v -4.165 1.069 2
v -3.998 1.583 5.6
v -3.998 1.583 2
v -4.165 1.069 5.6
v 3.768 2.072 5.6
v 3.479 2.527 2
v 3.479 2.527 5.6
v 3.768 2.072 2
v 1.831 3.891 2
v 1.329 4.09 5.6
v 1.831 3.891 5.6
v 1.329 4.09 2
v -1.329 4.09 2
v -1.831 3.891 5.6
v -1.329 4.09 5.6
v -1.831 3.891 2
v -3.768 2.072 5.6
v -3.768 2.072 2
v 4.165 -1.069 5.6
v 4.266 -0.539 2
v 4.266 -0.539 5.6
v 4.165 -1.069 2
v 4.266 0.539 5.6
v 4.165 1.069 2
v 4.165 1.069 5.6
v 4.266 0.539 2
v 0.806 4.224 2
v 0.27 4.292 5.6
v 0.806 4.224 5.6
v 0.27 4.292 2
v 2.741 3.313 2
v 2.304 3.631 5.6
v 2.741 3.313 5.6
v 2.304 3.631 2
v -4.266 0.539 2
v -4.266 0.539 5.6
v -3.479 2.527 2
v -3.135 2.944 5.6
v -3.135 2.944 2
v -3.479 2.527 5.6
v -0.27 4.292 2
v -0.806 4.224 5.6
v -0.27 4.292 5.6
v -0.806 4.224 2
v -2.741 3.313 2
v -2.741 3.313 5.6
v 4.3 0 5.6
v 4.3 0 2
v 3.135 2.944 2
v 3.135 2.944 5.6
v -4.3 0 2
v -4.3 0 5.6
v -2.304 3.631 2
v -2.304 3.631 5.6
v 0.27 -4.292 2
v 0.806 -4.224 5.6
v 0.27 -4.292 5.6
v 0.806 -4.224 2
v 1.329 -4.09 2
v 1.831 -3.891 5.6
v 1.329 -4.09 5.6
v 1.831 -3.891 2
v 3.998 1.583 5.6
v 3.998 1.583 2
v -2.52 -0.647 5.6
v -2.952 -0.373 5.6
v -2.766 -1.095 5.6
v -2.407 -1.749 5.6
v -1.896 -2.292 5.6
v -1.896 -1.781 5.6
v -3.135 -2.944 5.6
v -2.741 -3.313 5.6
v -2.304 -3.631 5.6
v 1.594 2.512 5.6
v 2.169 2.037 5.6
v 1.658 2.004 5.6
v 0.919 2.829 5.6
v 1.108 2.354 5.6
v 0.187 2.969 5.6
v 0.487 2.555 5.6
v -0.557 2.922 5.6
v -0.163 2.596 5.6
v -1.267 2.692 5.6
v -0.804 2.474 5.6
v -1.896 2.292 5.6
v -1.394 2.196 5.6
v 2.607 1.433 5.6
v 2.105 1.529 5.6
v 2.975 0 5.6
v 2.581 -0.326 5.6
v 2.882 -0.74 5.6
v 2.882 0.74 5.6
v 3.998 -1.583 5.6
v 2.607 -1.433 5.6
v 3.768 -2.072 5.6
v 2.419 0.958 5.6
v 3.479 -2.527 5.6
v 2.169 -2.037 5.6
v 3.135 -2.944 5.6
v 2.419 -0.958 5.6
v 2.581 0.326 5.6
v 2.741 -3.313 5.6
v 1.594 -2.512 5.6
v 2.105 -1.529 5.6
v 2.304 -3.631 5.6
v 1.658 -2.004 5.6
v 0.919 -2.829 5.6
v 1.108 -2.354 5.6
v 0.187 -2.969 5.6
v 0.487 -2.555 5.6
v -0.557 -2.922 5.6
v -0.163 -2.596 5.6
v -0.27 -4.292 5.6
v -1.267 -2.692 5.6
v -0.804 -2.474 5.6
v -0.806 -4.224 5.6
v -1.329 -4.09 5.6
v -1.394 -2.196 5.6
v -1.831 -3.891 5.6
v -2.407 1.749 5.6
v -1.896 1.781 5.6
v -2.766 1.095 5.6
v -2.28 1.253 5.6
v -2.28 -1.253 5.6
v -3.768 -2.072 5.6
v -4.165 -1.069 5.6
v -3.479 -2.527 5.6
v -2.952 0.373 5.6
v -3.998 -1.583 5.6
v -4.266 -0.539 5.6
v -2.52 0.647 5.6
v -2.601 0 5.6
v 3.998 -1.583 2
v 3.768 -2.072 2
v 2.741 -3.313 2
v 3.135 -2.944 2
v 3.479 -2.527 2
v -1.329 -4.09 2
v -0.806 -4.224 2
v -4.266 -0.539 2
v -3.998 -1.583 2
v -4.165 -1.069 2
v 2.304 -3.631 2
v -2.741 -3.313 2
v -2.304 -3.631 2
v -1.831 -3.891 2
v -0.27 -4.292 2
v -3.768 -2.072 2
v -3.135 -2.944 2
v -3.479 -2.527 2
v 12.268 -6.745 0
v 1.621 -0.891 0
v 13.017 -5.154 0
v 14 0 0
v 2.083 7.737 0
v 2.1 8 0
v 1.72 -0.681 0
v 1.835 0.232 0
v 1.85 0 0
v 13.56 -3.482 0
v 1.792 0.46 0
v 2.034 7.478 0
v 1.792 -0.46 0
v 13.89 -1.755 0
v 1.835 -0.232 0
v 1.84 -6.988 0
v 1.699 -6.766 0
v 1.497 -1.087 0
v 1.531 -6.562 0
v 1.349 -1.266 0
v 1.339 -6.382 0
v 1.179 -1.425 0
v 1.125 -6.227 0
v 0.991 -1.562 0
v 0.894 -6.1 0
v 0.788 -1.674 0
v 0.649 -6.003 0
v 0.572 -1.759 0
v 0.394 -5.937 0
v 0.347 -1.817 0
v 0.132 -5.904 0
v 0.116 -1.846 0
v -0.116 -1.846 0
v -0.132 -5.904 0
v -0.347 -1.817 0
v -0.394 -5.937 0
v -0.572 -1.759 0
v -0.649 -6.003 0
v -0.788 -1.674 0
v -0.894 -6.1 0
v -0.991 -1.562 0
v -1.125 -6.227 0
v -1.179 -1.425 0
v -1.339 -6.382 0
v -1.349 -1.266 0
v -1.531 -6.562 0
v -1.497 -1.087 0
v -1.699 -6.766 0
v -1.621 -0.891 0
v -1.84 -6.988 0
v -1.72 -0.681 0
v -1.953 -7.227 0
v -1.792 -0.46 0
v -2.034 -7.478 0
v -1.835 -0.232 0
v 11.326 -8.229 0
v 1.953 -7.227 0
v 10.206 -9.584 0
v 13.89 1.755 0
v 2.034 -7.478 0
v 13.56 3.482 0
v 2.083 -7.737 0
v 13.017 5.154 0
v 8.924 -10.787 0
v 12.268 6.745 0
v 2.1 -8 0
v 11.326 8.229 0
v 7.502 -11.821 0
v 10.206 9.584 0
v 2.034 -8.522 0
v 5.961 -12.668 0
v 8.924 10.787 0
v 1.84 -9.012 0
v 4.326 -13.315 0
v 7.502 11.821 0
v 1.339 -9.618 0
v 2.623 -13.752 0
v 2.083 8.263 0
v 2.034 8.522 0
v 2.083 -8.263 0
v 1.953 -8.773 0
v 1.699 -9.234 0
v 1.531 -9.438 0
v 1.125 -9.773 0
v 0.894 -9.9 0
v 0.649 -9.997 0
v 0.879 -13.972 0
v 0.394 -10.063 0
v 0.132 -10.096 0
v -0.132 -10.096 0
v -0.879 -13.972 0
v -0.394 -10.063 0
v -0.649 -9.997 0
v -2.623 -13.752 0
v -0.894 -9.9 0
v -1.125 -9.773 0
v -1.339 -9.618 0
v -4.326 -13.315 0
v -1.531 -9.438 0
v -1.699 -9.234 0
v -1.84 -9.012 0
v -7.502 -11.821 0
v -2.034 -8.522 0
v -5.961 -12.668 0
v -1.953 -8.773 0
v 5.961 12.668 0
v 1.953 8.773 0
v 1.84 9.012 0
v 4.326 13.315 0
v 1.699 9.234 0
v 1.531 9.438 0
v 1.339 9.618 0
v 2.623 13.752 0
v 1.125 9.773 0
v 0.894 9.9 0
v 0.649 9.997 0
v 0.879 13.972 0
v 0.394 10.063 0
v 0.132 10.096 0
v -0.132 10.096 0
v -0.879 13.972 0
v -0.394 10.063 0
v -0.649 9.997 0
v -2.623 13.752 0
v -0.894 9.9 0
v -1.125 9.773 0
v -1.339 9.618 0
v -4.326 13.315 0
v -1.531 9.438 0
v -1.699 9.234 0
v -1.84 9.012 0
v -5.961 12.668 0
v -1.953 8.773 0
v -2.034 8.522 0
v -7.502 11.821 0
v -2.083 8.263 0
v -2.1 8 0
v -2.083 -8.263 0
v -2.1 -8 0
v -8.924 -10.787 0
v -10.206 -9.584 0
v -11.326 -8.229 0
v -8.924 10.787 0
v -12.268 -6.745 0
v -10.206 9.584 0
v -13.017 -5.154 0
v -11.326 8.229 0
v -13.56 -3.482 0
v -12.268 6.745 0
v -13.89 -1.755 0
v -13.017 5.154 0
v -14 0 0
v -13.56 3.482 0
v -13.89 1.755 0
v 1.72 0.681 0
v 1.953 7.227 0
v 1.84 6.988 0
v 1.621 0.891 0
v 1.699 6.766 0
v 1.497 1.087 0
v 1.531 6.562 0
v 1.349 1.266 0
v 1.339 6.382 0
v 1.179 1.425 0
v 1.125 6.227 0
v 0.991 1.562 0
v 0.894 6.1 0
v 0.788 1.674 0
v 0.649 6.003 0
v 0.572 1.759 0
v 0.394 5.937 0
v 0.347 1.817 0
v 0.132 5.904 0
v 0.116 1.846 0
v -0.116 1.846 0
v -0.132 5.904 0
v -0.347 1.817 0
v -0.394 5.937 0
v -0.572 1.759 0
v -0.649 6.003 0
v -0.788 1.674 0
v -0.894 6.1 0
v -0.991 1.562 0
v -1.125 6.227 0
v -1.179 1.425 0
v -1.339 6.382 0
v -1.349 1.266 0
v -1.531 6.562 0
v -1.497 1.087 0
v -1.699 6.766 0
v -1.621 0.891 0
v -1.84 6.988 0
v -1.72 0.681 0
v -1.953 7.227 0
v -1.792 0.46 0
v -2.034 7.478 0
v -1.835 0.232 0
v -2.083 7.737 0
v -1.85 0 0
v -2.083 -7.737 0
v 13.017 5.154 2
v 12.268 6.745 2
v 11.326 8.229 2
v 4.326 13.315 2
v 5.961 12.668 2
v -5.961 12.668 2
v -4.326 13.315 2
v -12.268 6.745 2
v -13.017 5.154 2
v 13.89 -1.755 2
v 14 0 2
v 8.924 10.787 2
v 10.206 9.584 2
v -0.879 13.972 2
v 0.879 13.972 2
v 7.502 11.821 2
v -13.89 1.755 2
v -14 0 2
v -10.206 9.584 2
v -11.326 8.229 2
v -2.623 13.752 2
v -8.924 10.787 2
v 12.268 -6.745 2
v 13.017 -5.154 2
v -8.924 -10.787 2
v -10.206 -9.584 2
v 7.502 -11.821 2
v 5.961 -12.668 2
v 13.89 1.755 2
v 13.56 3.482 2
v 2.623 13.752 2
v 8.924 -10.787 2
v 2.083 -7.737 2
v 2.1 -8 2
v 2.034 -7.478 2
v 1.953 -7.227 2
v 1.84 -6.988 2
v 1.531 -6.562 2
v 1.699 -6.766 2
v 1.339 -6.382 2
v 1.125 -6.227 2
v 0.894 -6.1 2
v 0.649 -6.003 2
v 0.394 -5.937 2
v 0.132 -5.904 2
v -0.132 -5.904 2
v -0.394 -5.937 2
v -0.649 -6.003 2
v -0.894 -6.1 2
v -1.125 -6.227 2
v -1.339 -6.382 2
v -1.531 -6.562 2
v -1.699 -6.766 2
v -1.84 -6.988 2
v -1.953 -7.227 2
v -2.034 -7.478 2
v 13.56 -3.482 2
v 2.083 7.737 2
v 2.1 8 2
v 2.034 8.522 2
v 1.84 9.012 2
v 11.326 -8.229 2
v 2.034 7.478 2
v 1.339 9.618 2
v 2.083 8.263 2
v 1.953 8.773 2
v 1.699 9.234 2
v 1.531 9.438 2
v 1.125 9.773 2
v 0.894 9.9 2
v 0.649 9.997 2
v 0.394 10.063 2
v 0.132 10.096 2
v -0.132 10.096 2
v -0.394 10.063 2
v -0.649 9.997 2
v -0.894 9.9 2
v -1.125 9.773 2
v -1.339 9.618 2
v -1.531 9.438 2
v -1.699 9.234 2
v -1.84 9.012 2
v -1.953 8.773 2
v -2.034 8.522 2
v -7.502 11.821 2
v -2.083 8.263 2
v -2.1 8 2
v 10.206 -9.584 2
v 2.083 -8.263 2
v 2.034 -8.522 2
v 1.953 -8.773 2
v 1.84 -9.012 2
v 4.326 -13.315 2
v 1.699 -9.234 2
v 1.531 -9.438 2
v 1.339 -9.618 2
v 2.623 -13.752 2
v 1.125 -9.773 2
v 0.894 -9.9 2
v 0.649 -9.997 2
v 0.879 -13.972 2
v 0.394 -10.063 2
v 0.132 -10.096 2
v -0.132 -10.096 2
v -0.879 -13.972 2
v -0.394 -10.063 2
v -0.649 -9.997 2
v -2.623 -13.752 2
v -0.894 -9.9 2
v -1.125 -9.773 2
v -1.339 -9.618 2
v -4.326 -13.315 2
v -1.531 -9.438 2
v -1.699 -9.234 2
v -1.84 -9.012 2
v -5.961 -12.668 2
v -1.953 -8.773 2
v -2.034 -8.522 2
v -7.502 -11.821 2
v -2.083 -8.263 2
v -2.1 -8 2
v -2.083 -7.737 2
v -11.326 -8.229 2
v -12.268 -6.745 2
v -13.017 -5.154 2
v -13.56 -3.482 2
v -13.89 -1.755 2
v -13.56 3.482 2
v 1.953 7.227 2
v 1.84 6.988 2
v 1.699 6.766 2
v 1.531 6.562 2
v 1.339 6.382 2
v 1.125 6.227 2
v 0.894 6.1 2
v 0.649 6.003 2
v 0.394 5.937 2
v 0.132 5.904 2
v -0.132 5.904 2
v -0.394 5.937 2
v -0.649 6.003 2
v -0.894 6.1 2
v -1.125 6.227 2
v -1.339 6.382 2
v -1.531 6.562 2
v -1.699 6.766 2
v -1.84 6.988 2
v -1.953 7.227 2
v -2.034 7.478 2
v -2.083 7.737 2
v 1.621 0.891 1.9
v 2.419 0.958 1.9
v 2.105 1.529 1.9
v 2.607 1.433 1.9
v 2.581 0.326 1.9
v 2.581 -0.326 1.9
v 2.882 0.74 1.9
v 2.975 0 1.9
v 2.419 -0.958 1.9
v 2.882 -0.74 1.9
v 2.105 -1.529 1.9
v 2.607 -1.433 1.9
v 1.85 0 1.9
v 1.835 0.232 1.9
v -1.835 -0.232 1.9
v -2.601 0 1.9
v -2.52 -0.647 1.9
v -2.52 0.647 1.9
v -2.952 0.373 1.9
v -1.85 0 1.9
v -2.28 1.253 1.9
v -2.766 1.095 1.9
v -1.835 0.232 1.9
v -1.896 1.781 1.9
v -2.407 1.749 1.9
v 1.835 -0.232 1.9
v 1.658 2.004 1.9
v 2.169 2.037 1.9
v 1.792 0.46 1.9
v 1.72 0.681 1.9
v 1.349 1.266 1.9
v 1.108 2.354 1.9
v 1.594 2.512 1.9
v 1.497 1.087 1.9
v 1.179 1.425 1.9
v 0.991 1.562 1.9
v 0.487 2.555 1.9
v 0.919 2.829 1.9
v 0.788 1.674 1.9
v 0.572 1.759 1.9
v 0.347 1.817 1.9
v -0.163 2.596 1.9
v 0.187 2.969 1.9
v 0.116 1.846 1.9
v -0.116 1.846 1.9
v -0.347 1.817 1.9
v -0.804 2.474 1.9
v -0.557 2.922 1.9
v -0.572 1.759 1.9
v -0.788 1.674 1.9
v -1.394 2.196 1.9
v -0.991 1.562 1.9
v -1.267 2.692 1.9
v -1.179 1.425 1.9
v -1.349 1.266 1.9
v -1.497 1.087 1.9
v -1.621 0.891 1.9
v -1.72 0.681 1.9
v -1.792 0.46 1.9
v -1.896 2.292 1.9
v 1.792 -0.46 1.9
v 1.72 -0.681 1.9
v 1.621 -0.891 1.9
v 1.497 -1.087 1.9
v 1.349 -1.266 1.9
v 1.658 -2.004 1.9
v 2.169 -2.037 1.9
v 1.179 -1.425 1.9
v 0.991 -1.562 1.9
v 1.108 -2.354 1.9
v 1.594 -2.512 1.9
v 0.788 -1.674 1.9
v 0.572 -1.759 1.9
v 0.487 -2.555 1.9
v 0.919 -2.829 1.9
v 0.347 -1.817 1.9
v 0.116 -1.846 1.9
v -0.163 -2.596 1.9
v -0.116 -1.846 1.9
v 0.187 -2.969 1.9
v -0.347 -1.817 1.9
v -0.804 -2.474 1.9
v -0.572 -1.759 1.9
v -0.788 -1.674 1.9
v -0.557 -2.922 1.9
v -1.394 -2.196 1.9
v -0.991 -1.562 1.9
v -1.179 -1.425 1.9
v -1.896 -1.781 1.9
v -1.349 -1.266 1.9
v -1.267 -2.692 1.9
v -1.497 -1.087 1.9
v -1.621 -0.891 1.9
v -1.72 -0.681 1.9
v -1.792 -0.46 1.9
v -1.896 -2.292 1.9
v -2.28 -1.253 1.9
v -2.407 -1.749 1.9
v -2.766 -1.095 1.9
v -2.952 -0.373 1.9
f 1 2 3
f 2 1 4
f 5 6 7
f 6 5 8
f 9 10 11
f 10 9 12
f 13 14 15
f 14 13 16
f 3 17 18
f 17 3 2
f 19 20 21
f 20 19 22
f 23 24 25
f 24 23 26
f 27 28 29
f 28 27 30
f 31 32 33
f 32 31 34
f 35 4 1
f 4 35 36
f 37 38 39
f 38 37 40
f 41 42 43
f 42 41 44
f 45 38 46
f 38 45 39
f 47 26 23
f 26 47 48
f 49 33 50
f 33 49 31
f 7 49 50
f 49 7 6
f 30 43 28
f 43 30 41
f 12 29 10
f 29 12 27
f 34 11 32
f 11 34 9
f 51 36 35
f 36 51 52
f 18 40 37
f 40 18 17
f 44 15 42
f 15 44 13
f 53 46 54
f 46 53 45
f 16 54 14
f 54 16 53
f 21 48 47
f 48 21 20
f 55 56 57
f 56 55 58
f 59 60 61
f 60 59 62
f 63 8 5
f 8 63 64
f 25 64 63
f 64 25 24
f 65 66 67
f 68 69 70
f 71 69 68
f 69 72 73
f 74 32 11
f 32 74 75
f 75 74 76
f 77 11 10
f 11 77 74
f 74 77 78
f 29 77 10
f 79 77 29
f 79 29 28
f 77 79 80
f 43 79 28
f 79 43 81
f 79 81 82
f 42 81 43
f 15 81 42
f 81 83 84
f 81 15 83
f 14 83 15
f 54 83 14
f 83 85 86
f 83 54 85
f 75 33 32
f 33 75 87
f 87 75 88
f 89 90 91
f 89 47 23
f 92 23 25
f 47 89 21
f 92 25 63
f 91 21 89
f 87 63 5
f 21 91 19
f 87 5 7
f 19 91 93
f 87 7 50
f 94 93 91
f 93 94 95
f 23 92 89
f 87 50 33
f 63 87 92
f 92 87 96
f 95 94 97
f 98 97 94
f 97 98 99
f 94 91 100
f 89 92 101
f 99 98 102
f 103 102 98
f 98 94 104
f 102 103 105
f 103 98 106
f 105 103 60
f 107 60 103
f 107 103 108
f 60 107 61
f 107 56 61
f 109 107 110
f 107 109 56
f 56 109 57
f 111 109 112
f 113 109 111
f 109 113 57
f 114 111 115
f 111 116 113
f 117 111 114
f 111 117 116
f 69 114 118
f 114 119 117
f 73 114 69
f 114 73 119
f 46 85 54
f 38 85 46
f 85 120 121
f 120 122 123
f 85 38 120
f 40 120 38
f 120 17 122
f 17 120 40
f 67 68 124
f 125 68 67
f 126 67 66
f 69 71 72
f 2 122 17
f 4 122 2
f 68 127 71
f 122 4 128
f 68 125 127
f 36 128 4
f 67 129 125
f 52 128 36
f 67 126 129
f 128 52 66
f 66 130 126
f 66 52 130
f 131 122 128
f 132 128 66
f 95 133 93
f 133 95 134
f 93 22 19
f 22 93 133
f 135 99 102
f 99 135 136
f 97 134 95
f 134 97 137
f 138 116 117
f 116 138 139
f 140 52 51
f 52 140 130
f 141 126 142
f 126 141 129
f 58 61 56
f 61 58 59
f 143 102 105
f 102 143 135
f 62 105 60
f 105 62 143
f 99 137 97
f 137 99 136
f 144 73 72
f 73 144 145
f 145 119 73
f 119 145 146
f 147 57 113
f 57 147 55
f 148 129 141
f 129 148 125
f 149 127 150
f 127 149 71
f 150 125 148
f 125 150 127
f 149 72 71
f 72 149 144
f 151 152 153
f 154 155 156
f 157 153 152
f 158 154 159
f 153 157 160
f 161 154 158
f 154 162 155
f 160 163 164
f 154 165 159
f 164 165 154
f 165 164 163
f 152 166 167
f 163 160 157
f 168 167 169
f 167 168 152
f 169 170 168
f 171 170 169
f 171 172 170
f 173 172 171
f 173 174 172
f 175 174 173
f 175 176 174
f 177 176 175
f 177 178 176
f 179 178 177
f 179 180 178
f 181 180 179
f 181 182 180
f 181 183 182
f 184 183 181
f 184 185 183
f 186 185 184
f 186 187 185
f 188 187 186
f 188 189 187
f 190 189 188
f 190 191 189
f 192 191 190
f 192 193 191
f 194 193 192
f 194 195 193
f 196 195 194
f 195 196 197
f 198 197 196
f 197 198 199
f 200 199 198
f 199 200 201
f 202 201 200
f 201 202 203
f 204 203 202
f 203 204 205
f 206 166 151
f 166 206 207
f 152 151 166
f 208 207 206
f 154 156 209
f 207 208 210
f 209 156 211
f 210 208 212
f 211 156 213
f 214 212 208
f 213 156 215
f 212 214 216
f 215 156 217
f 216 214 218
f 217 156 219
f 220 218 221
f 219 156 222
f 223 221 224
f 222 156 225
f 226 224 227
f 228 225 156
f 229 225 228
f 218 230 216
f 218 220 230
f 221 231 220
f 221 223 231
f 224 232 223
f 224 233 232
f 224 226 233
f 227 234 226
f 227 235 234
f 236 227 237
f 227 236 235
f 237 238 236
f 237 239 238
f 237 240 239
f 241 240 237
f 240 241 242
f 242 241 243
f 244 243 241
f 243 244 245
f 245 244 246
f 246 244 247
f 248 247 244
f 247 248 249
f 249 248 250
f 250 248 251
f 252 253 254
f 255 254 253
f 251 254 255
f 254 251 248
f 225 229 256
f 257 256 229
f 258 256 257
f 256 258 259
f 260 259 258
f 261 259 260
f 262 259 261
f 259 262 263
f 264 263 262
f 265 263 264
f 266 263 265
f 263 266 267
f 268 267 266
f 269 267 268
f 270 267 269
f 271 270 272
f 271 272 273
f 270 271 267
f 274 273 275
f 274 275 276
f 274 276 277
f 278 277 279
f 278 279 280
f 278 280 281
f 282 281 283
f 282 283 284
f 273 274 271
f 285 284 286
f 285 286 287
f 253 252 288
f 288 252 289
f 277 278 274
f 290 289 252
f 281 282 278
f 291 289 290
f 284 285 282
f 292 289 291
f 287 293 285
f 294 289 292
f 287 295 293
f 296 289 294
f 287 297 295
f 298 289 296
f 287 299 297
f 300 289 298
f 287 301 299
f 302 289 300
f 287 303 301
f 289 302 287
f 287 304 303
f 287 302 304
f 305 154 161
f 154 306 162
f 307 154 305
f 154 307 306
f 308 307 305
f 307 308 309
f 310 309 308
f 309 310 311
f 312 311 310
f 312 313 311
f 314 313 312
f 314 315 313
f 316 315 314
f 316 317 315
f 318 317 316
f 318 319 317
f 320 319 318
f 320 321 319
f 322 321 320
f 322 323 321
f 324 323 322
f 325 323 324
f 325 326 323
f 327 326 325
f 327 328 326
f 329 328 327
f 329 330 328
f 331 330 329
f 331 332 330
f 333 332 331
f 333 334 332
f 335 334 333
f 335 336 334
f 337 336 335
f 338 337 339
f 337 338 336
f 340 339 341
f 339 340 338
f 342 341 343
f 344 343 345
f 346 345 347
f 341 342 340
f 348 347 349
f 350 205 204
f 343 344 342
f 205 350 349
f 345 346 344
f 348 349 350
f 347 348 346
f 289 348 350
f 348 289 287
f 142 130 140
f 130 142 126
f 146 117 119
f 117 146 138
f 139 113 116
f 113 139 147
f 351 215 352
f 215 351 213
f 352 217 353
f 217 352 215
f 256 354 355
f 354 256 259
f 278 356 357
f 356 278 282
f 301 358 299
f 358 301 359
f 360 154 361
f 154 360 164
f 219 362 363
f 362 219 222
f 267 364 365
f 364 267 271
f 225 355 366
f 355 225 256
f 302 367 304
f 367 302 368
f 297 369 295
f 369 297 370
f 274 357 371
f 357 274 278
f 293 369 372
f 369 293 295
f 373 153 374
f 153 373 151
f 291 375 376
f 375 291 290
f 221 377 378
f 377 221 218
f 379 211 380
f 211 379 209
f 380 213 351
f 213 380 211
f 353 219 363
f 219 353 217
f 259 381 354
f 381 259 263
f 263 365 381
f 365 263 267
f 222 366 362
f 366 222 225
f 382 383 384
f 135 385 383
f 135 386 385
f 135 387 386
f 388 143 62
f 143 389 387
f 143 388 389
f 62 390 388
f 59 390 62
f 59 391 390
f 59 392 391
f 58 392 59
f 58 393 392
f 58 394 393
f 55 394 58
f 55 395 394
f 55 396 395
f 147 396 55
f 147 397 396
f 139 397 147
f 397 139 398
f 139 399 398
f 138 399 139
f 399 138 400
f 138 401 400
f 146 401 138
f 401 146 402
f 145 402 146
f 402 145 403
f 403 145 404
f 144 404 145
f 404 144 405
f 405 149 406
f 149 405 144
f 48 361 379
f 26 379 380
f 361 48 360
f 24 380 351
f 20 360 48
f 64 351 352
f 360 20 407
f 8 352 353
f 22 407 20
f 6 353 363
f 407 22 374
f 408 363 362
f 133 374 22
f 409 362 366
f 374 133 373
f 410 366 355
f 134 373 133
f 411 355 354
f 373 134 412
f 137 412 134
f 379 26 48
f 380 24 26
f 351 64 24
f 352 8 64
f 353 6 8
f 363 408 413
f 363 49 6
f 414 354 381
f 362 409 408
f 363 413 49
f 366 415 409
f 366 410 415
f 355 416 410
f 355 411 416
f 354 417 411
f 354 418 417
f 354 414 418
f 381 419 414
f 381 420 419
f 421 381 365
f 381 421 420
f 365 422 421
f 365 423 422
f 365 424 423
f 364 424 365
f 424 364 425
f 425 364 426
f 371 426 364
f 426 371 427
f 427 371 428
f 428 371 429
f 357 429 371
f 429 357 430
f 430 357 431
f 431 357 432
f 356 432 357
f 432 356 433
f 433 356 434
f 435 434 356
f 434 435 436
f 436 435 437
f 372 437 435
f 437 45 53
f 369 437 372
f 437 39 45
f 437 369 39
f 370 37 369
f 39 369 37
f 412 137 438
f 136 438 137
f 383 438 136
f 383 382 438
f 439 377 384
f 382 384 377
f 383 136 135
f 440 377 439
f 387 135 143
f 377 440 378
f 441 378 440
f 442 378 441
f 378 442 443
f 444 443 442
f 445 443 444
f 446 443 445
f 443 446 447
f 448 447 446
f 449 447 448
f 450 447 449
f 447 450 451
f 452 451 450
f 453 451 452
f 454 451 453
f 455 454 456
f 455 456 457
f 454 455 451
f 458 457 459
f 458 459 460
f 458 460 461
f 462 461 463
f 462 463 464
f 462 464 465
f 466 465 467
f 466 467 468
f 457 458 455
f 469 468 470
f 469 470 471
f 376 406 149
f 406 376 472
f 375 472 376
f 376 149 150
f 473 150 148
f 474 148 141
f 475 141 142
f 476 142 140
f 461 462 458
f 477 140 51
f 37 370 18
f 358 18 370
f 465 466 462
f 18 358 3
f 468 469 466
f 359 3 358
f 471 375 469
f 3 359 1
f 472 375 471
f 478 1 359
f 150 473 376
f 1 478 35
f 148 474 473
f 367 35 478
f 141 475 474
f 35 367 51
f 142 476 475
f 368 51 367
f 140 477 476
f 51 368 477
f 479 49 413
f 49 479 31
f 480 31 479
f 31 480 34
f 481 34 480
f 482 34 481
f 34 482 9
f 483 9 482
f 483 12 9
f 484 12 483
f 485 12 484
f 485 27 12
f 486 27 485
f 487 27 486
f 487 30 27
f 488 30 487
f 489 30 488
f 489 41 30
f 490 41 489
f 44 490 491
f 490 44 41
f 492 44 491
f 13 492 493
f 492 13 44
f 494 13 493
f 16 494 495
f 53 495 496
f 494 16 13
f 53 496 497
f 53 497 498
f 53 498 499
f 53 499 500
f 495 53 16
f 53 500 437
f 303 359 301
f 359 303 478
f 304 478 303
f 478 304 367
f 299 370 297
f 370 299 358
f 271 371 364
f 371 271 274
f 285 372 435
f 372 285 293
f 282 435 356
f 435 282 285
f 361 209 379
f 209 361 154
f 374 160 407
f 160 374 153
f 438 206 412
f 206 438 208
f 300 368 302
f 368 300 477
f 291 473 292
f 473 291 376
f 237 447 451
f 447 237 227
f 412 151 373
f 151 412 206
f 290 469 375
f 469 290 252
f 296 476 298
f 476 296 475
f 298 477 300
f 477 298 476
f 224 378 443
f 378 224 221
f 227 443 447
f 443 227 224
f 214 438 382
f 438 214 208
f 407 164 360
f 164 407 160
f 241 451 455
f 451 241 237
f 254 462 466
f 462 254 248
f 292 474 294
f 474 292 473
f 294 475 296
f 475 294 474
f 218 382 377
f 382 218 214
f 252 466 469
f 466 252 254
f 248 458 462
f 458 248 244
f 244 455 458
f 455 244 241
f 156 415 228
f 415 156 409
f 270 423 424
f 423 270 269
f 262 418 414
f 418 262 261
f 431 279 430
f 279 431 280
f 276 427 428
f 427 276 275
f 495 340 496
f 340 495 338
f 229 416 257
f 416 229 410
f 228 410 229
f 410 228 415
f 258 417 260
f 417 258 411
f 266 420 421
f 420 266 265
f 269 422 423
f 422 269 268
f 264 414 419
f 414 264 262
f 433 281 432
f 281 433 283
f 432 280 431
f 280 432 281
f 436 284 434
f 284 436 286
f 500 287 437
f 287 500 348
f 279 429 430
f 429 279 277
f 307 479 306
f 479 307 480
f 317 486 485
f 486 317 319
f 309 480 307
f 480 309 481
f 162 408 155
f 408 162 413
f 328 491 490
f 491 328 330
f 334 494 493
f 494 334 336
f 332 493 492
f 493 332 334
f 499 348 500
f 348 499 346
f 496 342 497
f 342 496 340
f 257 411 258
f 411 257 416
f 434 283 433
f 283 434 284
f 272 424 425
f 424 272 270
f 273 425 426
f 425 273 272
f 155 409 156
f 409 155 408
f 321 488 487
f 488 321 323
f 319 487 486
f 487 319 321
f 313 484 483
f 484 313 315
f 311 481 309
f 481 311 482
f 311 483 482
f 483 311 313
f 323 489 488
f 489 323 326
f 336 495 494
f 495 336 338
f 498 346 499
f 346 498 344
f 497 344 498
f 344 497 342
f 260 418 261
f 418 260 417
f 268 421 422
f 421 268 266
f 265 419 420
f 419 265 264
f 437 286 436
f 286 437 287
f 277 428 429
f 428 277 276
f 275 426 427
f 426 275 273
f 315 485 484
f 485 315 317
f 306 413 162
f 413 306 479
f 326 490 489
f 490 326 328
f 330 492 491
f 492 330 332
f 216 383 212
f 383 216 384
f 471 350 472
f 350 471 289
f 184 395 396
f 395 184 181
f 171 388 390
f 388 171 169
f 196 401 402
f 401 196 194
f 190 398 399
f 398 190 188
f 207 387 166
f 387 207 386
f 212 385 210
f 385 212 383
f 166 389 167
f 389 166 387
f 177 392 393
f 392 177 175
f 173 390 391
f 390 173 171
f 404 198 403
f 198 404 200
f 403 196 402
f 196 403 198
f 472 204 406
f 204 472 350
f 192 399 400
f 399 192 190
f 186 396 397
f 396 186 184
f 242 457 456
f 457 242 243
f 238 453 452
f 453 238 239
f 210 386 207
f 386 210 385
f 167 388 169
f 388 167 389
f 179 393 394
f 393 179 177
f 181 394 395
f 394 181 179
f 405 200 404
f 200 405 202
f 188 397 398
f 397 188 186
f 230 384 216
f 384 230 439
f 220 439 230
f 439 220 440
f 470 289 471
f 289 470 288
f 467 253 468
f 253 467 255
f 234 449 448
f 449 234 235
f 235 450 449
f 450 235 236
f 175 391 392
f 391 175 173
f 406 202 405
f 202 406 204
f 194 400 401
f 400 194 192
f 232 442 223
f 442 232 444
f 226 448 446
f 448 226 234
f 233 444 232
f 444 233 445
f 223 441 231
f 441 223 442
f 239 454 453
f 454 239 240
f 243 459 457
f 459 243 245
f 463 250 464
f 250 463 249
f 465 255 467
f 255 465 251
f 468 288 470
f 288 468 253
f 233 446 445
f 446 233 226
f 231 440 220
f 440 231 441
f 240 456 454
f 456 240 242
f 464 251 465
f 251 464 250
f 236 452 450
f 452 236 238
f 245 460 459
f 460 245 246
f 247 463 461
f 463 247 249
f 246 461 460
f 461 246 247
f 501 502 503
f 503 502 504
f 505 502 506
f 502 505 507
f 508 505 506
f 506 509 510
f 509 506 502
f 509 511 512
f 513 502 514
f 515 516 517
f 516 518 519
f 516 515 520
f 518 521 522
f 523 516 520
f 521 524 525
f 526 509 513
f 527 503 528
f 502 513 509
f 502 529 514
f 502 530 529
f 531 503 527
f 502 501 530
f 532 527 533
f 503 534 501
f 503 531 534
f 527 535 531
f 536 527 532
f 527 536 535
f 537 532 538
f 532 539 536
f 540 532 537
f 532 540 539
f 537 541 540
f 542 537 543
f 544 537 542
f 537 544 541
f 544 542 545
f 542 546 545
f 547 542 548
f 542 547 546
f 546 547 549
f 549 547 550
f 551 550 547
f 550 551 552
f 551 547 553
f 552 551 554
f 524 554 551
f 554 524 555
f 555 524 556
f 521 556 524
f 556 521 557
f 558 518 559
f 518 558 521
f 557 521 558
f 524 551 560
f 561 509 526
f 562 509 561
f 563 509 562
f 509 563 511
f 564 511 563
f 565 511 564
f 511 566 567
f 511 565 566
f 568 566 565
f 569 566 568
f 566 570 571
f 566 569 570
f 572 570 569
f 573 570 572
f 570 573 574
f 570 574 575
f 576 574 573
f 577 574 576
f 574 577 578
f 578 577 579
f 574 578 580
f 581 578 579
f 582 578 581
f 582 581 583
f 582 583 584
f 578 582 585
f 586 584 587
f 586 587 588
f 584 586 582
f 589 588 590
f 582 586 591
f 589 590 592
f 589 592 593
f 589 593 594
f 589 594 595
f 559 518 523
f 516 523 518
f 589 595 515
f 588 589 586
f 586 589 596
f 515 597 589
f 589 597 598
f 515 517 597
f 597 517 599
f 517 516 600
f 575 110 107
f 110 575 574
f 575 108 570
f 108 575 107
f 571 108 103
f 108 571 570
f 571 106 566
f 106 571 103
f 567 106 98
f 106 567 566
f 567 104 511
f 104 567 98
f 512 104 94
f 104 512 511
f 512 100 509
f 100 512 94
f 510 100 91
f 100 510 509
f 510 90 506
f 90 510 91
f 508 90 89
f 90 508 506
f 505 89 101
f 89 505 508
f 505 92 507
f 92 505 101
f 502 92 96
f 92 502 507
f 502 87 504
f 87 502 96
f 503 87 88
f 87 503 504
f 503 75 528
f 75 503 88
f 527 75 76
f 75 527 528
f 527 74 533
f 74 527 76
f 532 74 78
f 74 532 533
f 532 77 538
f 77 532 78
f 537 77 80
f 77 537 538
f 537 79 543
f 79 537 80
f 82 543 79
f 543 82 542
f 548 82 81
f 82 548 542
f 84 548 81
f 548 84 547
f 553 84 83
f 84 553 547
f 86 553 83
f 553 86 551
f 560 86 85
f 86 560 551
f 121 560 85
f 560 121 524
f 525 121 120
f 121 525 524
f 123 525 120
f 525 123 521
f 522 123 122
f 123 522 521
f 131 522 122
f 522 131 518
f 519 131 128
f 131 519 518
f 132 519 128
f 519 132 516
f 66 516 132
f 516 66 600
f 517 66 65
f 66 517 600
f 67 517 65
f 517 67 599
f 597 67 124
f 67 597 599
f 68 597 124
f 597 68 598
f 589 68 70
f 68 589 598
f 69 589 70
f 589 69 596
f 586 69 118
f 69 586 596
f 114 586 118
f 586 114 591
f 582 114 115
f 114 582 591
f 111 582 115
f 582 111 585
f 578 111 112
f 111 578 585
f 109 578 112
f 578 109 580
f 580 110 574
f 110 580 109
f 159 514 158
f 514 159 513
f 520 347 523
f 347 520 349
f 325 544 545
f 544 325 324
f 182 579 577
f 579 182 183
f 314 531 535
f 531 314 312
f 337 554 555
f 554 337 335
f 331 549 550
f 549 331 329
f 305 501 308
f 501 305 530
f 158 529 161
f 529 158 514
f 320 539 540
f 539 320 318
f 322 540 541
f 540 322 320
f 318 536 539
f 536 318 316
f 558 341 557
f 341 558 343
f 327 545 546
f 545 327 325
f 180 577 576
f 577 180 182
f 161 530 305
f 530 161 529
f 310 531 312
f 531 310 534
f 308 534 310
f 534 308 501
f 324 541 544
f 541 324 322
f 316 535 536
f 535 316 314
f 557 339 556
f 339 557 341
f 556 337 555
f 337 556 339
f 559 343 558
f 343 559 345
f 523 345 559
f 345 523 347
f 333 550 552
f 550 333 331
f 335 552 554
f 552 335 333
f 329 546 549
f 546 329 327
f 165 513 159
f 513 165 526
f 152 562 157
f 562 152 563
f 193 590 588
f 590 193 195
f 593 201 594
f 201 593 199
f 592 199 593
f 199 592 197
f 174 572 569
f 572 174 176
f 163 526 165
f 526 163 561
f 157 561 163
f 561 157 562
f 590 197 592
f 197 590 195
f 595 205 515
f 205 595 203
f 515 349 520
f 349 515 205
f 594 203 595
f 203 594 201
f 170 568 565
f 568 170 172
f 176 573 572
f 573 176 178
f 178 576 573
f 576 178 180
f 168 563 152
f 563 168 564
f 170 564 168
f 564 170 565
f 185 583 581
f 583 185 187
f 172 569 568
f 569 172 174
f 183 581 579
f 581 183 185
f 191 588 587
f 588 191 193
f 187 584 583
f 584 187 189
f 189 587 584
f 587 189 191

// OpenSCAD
// file: tetrix_holes.scad
drillDepth = 15;

module holes(nholes)
{
    smallR = 4.2/2; // Nominal 3.7 mm.  4.2 works on TAZ.
    largeR = 8.8/2; // Nominal 8.0 mm.  8.8 works on TAZ.
    offset = 8;
    
    translate([0,0,-drillDepth/2])
    cylinder(r=largeR,h=drillDepth);
    
    if (nholes > 0)
    {
        angle = 360/nholes;
        for (i=[0:nholes-1])
        {
            translate([offset*sin(i*angle),offset*cos(i*angle),-drillDepth/2])
            cylinder(r=smallR,h=drillDepth);
        }
    }
}

module slots(nholes, angle)
{
    smallR = 4.2/2; // Nominal 3.7 mm.  4.2 works on TAZ.
    largeR = 8.8/2; // Nominal 8.0 mm.  8.8 works on TAZ.
    offset = 8;
    delta = 0.02;
    
    translate([0,0,-drillDepth/2])
    cylinder(r=largeR,h=drillDepth);

    
    if (nholes > 0)
    {
        theta = 360/nholes;
        for (i=[0:nholes-1])
        {
            translate([0,0,-drillDepth/2])
            rotate([0,0,i*theta])
            minkowski()
            {
                difference()
                {
                    cylinder(r=offset+delta, h=delta);
                    translate([0,0,-delta/2])
                    {
                        cylinder(r=offset-delta, h=2*delta);
                        rotate([0,0,-angle/2])
                        translate([0,-(offset+2*delta),0])
                        cube([offset+2*delta,2*(offset+2*delta),2*delta]);
                        rotate([0,0,angle/2-180])
                        translate([0,-(offset+2*delta),0])
                        cube([offset+2*delta,2*(offset+2*delta),2*delta]);
                    }
                }
                cylinder(r=smallR,h=drillDepth);
            }    
        }
    }
}

module littleHoles(nholes)
{
    smallR = 4.2/2; // Nominal 3.7 mm.  4.2 works on TAZ.
    offset = 8;
    
    angle = 360/nholes;
    for (i=[0:nholes-1])
    {
        translate([offset*sin(i*angle),offset*cos(i*angle),-drillDepth/2])
        cylinder(r=smallR,h=drillDepth);
    }
}

module littleHoles2(nholes, ntotal)
{
    smallR = 4.2/2; // Nominal 3.7 mm.  4.2 works on TAZ.
    offset = 8;
    
    angle = 360/nholes;
    for (i=[0:ntotal-1])
    {
        translate([offset*sin(i*angle),offset*cos(i*angle),-drillDepth/2])
        cylinder(r=smallR,h=drillDepth);
    }
}
// main file
$fn = 50;
include <tetrix_holes.scad>

h1 = 2;
h2 = 5.6;

module spline(diameter,teeth,h)
{
    dTheta = 360/(2*teeth);
    rr = diameter/2 * [1 , 1-3.14/teeth];
    poly = [for (i=[0:2*teeth-1]) rr[i%2]*[cos(i*dTheta),sin(i*dTheta)]];
    linear_extrude(h,convexity=10)
    polygon(poly);
}


difference()
{
    union()
    {
        cylinder(r=8.6/2,h=h2);
        cylinder(r=14,h=h1);
    }
    // The spline!
    translate([0,0,1.9])
    spline(5.95,25,4); // 5.77 to 5.90 tight. (Last nearly usable.)
    // Horn screw hole.
    translate([0,0,-0.1])
    cylinder(r=3.7/2,h=4);
    // Tetrix mounting.
    littleHoles(2);
}
